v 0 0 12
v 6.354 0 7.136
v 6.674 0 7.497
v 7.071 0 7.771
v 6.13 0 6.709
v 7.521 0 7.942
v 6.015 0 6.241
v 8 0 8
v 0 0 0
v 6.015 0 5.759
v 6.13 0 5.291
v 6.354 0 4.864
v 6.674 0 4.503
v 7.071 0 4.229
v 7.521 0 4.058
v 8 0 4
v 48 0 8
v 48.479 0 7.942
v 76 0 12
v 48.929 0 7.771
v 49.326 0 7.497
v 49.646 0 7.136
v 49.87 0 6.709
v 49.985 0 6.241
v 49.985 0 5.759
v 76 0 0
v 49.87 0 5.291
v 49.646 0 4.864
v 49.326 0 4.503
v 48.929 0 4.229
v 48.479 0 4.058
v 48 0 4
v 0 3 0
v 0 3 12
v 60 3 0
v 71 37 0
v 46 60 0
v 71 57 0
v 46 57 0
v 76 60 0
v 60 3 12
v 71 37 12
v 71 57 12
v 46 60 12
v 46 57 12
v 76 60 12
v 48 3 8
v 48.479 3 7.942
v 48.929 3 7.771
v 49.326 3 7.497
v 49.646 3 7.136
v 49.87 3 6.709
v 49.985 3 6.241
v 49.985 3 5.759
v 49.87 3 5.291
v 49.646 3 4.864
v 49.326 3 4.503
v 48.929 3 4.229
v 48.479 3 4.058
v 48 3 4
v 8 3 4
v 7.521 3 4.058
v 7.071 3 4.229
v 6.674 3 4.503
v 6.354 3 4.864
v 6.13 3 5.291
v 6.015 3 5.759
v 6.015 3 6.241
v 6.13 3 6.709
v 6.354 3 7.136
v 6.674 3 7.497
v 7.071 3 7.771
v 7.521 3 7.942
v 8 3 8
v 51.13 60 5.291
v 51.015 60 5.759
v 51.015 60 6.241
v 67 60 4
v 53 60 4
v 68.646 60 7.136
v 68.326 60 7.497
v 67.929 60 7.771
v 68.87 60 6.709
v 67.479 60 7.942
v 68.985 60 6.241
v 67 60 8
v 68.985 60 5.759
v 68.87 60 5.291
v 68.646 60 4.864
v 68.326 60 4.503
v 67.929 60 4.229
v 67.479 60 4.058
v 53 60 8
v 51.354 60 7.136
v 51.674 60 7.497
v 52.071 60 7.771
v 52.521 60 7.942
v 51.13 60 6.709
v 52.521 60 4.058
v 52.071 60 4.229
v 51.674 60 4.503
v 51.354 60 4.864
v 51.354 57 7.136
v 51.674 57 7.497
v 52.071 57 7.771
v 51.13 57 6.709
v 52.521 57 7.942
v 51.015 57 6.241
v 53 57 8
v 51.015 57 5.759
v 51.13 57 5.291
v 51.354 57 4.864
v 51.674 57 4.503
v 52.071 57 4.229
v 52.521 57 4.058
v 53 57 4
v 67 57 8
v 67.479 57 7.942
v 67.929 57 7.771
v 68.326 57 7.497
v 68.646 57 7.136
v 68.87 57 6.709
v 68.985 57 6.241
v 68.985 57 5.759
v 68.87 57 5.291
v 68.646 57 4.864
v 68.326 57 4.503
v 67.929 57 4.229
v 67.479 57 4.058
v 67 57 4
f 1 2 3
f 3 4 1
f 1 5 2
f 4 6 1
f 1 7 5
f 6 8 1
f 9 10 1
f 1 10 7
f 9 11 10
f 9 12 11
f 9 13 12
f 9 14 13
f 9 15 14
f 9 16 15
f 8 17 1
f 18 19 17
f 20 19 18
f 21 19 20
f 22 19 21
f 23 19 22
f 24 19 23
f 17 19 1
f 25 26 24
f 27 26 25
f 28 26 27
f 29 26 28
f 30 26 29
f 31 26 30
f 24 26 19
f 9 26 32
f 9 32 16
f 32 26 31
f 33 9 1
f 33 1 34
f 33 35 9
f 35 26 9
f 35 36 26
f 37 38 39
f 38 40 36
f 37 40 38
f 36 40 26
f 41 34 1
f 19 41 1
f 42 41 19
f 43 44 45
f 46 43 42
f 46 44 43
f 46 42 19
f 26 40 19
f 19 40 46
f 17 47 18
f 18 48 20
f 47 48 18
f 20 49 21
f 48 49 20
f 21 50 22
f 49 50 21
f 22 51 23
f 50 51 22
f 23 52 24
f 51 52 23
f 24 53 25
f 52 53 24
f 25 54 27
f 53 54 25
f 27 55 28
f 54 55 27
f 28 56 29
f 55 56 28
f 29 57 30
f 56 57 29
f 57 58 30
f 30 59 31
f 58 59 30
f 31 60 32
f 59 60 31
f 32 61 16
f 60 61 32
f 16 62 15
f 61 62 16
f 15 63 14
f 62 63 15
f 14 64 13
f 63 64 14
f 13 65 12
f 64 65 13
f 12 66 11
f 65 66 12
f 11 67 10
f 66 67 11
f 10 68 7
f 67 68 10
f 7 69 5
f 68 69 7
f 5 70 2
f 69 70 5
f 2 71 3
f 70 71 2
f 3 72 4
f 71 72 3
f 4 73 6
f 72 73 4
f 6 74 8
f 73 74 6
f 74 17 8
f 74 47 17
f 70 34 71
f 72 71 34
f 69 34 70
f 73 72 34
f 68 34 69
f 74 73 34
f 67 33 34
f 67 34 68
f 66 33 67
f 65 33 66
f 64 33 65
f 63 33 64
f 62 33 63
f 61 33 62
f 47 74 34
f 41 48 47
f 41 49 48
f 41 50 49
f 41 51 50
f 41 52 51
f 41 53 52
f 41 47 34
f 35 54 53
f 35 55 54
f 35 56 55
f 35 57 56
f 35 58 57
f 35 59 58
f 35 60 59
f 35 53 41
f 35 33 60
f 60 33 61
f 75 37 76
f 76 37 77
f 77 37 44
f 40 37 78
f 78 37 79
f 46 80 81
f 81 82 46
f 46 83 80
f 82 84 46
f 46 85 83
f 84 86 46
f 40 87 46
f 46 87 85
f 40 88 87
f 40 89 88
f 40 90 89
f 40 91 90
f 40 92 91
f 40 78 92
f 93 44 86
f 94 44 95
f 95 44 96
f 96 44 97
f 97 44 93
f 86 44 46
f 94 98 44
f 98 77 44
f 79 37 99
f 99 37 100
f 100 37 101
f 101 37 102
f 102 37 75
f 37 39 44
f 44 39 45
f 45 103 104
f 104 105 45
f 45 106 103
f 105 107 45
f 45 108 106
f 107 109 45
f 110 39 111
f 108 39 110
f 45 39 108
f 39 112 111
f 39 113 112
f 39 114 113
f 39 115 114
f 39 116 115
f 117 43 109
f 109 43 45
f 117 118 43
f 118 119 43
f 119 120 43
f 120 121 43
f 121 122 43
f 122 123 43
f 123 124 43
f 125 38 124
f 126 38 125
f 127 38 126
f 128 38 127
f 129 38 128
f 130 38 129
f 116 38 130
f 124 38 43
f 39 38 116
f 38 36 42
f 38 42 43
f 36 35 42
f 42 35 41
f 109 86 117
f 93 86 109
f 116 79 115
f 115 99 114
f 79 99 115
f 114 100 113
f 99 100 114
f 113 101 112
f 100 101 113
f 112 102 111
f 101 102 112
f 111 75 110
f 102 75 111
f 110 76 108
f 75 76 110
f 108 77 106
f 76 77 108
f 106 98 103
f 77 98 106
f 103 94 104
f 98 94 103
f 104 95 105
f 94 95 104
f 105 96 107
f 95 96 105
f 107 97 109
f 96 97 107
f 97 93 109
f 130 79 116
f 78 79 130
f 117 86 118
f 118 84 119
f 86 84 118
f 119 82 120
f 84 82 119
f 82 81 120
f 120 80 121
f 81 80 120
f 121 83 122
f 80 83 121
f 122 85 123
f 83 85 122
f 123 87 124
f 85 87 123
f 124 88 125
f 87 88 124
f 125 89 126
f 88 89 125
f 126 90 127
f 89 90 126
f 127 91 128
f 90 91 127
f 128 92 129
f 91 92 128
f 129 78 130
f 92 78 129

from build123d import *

# Parameters (mm, degrees)
PAD_DEPTH       = 12
POCKET_DEPTH    = 5
POCKET001_DEPTH = 5


with BuildPart() as part:
    # Sketch → Pad (new body)
    with BuildSketch(Plane.XY):
        Polygon((0, 0), (76, 0), (76, 60), (46, 60), (46, 57), (71, 57), (71, 37), (60, 3), (0, 3), align=None)
    extrude(amount=PAD_DEPTH)

    # Sketch001 (on Face3 of Pad) → Pocket (cut)
    with BuildSketch(Plane(origin=(0, 60, 0), x_dir=(-1, 0, 0), z_dir=(0, 1, 0))):
        with BuildLine():
            ThreePointArc((-67, 8), (-69, 6), (-67, 4))
            Line((-67, 4), (-53, 4))
            ThreePointArc((-53, 4), (-51, 6), (-53, 8))
            Line((-53, 8), (-67, 8))
        make_face()
    extrude(amount=-POCKET_DEPTH, mode=Mode.SUBTRACT)

    # Sketch002 (on Face6 of Pocket) → Pocket001 (cut)
    with BuildSketch(Plane(origin=(0, 3, 0), x_dir=(-1, 0, 0), z_dir=(0, 1, 0))):
        with BuildLine():
            ThreePointArc((-48, 8), (-50, 6), (-48, 4))
            Line((-48, 4), (-8, 4))
            ThreePointArc((-8, 4), (-6, 6), (-8, 8))
            Line((-48, 8), (-8, 8))
        make_face()
    extrude(amount=-POCKET001_DEPTH, mode=Mode.SUBTRACT)


solid = part.part
